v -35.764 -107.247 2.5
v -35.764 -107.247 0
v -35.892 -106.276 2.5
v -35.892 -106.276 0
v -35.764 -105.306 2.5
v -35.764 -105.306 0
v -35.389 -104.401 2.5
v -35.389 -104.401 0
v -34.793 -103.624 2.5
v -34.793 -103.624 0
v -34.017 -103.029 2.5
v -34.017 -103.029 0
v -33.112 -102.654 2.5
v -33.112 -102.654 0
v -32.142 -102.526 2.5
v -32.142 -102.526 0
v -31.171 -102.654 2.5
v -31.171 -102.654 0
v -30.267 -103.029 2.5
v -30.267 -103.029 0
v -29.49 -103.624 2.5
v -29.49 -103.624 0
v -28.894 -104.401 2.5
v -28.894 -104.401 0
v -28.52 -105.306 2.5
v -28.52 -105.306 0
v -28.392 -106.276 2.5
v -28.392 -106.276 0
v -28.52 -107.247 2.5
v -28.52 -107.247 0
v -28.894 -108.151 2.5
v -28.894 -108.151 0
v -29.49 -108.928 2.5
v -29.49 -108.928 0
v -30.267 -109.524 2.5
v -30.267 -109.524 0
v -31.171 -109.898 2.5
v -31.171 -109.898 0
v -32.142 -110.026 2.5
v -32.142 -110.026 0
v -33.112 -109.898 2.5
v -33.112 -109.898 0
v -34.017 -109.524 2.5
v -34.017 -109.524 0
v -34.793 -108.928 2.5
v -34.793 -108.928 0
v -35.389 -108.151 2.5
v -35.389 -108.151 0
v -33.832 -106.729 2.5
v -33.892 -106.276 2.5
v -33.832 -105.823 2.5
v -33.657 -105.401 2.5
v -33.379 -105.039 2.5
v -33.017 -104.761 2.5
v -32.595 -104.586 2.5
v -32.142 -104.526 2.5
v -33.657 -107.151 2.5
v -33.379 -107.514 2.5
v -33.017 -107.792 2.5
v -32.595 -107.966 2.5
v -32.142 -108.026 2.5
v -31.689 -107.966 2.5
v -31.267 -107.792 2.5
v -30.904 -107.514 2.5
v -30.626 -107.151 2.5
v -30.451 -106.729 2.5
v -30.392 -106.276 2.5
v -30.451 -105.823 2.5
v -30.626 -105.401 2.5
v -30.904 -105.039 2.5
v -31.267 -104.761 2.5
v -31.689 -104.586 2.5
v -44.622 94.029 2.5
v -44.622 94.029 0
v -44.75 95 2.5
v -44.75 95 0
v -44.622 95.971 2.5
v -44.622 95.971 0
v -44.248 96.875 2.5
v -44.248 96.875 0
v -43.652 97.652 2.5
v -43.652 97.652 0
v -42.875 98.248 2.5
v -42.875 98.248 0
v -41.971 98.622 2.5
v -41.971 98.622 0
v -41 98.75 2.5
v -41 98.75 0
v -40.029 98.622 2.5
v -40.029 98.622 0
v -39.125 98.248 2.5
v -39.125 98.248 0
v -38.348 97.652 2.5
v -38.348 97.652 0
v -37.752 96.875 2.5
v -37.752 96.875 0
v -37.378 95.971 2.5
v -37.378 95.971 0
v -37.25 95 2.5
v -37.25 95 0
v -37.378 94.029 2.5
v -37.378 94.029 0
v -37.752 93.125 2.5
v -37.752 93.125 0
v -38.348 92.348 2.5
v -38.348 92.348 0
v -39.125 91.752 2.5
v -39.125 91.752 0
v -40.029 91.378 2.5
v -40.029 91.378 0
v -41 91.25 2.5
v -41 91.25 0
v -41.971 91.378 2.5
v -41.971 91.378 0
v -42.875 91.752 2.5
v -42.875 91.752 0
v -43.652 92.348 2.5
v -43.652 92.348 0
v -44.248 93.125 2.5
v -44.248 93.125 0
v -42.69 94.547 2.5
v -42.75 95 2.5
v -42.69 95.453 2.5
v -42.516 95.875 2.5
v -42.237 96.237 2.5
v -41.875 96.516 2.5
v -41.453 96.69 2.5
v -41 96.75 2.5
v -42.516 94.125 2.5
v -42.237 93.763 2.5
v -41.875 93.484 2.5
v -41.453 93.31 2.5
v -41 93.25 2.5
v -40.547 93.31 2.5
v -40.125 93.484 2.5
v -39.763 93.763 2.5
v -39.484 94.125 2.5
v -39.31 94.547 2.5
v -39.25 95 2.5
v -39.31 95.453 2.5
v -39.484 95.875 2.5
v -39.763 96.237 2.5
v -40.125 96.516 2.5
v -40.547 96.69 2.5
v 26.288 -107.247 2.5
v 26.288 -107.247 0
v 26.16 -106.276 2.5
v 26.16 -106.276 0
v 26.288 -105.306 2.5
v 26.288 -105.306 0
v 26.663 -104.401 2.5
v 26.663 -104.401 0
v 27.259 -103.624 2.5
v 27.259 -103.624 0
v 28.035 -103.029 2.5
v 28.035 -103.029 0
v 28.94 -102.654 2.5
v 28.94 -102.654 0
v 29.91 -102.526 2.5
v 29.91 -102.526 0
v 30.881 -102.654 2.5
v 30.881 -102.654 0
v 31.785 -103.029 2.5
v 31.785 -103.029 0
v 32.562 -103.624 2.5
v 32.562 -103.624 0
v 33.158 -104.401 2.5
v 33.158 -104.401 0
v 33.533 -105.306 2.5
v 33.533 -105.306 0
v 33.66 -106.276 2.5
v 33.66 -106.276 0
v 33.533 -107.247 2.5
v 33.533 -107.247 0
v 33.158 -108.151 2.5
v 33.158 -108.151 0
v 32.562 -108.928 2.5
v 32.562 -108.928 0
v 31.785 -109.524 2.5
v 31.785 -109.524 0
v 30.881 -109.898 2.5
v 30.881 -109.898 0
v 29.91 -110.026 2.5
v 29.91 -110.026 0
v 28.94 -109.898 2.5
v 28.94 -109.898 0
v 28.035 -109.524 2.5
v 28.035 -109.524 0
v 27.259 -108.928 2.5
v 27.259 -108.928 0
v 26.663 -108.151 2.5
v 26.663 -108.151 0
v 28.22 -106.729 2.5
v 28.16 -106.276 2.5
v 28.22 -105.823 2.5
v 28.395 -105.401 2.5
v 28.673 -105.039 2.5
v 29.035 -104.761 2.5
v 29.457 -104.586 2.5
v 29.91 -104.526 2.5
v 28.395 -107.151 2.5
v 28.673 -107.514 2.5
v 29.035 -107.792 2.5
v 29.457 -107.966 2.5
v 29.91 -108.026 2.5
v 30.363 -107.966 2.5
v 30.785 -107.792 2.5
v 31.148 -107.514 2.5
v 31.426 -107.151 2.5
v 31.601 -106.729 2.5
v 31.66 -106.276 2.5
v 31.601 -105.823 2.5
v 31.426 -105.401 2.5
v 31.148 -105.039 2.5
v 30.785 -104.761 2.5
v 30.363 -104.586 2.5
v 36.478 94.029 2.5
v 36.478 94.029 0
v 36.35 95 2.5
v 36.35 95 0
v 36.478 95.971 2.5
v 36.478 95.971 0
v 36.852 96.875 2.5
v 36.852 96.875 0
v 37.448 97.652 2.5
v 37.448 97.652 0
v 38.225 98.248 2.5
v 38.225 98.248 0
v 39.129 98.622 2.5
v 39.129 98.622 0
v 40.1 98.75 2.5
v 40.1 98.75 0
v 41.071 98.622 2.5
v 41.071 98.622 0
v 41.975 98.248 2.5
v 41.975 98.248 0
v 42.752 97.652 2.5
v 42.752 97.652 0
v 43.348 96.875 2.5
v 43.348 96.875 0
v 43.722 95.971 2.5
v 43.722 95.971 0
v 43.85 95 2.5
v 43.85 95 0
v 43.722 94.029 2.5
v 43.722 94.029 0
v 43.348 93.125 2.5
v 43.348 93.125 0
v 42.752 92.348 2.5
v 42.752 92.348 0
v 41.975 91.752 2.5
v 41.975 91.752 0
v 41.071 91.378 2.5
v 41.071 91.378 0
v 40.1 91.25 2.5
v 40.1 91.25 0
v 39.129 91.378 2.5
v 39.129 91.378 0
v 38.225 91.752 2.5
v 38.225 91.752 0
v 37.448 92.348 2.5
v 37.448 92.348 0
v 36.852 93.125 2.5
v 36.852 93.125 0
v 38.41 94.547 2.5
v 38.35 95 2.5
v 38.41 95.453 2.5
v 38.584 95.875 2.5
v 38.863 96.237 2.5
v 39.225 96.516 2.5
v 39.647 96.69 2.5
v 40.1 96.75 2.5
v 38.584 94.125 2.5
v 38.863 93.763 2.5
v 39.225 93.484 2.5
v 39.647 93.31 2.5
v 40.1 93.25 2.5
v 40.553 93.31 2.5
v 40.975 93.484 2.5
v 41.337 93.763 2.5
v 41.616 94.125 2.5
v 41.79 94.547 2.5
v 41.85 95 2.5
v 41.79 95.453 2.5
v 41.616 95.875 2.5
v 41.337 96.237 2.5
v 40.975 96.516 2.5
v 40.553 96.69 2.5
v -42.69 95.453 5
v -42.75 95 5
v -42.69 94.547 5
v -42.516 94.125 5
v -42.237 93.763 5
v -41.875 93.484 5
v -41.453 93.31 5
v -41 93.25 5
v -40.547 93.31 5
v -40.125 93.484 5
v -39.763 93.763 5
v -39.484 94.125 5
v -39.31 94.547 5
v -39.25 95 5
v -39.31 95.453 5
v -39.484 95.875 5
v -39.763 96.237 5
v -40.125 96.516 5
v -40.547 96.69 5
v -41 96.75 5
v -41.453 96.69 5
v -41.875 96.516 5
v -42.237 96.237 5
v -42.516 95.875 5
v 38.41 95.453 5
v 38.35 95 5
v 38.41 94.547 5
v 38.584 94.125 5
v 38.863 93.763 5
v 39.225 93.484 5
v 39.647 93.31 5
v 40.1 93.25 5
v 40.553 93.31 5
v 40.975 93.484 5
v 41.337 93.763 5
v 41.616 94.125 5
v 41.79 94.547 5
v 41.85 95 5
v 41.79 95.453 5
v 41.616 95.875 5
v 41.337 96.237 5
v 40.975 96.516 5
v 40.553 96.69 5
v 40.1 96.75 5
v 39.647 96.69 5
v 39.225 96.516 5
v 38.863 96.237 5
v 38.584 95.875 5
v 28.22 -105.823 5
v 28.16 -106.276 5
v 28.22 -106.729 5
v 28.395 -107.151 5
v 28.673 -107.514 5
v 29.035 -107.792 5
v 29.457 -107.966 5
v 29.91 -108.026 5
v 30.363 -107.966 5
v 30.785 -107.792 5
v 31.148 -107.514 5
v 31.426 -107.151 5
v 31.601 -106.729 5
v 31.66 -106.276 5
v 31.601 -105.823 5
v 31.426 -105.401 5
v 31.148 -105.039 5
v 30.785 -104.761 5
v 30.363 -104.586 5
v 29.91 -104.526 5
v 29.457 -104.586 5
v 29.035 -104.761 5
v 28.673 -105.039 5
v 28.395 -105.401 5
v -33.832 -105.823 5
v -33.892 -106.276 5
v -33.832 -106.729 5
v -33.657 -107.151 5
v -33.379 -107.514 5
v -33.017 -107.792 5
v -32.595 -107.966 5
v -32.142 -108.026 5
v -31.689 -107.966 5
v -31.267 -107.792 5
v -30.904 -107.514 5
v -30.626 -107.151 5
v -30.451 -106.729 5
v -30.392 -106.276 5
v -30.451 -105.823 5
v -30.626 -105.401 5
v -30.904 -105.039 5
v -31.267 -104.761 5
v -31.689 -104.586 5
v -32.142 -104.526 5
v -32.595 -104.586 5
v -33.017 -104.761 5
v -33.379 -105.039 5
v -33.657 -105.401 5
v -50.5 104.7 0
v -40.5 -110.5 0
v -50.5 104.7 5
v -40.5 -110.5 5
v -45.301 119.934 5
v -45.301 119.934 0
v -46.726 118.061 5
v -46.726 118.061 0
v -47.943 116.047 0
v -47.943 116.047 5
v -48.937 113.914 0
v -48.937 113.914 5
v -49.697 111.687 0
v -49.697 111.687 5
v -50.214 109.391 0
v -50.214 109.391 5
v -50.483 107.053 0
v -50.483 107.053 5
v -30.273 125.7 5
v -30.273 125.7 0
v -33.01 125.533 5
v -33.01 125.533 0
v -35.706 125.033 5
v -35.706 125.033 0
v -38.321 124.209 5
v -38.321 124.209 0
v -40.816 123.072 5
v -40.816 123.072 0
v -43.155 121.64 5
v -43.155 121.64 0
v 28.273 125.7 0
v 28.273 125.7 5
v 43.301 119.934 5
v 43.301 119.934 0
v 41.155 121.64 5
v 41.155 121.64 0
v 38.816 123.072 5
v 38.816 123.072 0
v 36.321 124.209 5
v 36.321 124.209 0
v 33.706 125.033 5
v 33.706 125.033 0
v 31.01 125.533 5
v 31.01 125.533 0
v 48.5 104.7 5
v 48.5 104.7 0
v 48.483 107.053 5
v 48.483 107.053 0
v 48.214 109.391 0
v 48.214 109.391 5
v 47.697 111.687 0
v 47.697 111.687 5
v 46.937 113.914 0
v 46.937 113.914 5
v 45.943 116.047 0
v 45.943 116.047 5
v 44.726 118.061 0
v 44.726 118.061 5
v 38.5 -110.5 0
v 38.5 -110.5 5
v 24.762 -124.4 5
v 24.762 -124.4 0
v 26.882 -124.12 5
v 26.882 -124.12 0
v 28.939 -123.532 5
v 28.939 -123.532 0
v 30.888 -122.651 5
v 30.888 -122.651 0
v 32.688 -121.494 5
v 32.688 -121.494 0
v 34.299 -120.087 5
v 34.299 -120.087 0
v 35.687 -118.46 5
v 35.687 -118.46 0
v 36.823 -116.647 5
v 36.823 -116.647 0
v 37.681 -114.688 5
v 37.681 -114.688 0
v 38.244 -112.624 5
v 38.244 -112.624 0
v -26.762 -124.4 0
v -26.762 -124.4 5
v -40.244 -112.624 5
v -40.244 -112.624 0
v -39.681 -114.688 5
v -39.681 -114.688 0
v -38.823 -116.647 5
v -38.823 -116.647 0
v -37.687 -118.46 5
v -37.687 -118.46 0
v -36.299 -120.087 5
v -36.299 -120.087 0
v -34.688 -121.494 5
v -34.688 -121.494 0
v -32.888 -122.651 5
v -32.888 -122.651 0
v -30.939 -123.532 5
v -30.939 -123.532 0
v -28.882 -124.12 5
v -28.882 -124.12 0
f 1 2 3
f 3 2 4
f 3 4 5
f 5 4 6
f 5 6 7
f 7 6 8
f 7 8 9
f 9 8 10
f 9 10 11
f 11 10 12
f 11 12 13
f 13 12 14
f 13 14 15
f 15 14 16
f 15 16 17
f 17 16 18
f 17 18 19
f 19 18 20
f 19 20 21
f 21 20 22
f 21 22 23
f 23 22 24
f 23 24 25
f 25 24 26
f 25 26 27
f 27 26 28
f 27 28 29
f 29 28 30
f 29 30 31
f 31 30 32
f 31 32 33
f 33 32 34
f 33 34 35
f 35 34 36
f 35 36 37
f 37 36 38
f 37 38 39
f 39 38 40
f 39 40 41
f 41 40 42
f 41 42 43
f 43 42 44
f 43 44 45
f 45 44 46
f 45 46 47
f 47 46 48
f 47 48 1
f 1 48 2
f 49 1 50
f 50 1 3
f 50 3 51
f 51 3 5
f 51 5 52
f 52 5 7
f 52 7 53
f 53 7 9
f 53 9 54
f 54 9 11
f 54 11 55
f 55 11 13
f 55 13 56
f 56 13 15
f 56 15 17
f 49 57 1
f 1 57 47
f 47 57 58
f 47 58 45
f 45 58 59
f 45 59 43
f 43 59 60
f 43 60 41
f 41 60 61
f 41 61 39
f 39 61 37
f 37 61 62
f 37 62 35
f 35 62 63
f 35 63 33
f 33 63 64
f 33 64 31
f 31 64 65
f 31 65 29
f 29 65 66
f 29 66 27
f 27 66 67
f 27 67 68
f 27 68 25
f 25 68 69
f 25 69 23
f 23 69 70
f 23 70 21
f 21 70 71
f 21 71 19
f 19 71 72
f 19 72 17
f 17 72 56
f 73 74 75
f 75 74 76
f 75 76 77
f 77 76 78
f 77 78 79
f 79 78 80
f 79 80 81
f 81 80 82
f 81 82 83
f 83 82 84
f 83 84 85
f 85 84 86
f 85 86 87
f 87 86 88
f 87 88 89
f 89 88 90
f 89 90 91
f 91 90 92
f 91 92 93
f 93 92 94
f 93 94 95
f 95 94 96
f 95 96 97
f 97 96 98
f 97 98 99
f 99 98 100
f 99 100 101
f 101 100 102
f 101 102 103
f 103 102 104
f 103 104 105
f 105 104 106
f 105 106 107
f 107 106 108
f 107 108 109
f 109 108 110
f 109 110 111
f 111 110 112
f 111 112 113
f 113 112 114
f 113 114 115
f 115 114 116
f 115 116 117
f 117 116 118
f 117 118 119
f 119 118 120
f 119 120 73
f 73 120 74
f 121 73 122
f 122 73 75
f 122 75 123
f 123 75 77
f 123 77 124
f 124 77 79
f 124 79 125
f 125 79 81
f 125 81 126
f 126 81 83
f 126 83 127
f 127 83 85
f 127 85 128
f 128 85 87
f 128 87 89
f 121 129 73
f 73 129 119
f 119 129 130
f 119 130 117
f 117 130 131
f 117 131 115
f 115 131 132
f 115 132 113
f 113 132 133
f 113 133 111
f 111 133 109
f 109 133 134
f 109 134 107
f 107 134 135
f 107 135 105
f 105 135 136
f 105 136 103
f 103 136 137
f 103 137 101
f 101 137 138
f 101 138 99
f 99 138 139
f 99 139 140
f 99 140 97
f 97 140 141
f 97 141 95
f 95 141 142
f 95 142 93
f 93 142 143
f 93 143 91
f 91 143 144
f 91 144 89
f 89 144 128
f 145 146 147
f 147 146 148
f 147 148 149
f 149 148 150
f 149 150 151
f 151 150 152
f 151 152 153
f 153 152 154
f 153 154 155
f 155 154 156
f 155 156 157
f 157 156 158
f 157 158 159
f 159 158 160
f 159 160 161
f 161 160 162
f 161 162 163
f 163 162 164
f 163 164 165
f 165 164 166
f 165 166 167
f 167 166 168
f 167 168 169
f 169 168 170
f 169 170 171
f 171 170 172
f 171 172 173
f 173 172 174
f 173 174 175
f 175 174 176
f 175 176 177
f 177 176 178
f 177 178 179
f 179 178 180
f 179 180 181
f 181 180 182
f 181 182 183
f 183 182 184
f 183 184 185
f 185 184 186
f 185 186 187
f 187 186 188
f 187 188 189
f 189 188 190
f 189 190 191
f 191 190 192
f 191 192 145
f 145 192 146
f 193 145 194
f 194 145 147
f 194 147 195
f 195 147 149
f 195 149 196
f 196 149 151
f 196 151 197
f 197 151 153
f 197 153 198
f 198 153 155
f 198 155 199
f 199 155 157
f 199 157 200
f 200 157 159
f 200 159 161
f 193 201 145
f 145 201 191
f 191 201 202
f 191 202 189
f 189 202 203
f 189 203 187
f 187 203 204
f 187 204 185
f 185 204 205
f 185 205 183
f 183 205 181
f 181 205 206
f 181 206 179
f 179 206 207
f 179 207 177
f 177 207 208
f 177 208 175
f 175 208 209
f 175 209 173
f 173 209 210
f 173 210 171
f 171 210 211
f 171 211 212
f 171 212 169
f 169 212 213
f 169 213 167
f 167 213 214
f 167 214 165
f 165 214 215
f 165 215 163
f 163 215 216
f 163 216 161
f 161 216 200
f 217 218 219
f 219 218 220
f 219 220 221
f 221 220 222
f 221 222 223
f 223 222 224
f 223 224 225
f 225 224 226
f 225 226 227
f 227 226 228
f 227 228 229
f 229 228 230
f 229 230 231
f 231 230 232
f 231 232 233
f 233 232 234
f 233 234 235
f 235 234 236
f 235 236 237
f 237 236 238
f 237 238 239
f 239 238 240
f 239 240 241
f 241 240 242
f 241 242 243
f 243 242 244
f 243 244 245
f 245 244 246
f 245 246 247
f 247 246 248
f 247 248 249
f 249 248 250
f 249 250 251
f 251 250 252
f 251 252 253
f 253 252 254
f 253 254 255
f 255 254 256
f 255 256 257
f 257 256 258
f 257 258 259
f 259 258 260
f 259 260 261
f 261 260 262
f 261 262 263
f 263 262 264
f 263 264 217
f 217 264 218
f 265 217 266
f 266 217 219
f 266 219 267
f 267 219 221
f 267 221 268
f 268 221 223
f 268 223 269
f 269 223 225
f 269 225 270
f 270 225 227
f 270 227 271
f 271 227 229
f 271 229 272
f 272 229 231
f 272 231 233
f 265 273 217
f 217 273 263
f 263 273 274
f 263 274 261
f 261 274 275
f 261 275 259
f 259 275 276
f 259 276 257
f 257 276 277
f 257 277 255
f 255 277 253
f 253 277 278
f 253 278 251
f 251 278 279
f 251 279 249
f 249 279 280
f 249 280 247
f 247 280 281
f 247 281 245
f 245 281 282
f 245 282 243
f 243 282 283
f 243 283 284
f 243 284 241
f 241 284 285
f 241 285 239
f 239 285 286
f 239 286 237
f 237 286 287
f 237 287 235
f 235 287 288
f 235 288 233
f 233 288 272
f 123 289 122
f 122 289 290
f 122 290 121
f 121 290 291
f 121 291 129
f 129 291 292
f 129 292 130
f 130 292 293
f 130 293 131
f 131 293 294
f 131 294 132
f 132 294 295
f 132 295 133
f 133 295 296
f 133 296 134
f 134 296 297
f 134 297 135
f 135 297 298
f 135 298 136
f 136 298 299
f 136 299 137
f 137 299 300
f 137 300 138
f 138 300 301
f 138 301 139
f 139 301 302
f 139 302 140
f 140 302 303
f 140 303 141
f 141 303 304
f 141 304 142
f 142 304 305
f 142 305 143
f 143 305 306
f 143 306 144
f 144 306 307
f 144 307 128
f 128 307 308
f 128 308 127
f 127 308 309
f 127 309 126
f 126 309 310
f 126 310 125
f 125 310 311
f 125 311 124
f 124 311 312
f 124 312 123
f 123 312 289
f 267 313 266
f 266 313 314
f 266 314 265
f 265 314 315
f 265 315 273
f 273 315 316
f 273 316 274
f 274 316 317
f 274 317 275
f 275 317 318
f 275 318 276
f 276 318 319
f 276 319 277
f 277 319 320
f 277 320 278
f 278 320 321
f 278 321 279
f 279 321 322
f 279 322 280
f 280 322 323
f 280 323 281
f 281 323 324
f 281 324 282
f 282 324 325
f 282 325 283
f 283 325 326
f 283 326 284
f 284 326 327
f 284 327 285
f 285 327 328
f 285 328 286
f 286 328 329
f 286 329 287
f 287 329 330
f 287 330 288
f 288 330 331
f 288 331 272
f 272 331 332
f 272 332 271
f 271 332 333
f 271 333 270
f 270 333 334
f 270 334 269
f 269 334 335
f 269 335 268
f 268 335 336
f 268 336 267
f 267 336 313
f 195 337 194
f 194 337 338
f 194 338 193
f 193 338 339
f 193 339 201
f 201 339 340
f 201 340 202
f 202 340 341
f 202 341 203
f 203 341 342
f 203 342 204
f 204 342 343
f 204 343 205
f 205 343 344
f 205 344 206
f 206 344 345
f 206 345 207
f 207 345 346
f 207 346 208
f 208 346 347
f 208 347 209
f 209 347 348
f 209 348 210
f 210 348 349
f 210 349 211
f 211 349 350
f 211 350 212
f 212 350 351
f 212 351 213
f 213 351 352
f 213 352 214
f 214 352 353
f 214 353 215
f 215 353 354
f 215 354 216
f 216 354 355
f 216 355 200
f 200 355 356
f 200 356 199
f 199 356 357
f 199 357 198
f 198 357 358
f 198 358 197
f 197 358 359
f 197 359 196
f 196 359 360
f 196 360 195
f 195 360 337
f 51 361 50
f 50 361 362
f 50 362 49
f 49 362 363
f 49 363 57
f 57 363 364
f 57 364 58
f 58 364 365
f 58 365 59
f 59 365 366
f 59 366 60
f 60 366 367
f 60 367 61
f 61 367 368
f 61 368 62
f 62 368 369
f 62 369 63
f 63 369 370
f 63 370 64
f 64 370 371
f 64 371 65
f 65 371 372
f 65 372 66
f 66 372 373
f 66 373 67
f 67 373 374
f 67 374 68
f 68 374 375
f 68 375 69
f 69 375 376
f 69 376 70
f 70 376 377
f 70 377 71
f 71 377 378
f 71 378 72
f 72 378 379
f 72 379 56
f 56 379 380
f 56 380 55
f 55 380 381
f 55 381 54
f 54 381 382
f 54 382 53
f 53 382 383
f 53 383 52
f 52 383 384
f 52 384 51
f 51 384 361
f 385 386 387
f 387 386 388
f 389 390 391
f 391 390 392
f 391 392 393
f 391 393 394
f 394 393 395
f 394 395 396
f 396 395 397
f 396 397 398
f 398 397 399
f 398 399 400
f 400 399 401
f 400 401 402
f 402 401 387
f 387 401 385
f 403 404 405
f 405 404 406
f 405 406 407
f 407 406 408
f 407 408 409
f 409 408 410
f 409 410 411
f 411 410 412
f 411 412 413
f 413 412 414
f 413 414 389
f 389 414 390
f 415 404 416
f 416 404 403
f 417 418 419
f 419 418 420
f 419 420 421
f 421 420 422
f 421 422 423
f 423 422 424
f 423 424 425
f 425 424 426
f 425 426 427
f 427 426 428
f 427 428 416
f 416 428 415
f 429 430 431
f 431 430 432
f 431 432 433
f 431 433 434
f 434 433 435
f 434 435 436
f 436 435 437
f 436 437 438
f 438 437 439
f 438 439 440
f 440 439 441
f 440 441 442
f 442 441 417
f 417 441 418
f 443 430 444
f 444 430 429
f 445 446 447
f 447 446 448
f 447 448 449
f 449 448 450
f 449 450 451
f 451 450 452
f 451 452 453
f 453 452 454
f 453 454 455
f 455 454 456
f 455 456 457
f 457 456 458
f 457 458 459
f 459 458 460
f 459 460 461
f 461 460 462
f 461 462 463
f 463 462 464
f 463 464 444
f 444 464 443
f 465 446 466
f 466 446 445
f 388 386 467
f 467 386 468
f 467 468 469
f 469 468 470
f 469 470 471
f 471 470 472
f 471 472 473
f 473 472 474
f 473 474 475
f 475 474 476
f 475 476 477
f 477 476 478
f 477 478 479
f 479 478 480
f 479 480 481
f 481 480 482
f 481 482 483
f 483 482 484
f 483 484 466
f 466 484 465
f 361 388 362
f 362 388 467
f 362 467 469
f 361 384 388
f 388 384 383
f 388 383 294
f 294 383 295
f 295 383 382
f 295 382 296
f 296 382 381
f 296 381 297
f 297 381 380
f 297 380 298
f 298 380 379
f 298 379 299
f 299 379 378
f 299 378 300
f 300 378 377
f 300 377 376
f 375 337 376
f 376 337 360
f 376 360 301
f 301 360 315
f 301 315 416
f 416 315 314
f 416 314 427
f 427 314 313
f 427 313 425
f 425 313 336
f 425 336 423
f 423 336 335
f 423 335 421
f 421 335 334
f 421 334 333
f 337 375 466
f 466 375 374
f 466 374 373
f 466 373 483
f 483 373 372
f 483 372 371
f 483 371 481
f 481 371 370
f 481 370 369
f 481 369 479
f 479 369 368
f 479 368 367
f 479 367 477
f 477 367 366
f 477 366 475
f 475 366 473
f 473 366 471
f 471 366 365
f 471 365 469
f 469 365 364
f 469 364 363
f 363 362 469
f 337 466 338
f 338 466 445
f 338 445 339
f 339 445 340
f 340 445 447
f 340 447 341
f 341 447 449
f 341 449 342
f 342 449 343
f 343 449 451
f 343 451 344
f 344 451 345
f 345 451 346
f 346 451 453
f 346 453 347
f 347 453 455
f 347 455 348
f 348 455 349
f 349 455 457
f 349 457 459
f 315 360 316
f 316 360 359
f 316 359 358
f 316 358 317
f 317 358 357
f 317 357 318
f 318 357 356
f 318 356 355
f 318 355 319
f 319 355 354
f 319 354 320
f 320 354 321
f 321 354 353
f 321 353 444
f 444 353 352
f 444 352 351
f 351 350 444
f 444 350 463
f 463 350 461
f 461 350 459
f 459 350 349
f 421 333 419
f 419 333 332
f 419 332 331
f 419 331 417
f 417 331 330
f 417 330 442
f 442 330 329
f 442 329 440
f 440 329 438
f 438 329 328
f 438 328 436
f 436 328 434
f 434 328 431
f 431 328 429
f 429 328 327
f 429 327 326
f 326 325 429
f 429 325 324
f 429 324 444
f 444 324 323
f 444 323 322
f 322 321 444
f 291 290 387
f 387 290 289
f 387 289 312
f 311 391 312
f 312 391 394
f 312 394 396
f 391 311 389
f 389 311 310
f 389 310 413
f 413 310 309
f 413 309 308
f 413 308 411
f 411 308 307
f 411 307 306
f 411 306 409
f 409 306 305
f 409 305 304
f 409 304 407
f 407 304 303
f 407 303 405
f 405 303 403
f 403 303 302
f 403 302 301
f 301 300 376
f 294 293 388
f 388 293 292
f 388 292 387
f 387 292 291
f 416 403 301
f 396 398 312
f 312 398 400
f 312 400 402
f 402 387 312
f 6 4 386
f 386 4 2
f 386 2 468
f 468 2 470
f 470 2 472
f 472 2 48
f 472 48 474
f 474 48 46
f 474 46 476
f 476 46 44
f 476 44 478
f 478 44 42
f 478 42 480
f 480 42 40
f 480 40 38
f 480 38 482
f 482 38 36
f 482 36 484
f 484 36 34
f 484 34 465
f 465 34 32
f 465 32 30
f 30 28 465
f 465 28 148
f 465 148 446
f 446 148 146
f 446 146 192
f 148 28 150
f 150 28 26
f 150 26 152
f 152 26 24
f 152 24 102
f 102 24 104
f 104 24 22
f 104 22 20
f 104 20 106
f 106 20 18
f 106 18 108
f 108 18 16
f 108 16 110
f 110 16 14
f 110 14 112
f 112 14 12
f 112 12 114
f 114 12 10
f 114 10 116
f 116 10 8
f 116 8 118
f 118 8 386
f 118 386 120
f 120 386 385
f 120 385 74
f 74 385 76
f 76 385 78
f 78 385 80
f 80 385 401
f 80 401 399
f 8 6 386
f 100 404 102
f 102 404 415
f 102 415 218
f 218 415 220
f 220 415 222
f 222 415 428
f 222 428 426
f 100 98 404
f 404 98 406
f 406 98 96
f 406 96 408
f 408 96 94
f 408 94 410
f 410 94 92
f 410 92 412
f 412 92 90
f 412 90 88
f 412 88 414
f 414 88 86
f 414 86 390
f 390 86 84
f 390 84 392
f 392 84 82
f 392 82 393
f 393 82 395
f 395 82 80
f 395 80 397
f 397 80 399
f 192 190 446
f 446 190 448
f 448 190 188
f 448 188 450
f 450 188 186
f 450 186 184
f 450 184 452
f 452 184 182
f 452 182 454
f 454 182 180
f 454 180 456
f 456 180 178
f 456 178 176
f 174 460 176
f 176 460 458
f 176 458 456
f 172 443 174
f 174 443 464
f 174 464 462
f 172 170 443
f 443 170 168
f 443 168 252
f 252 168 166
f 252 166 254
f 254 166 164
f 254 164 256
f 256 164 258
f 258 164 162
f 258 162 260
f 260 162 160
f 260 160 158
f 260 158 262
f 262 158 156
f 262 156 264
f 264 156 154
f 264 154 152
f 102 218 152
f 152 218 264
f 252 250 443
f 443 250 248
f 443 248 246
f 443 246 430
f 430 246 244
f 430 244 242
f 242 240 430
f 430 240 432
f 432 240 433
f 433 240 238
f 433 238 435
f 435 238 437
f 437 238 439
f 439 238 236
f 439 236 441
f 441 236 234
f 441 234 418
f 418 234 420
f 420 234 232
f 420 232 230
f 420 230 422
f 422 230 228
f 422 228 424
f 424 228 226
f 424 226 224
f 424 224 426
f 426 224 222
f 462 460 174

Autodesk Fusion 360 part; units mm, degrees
sketch "Sketch2" plane through (0, 0, 0) normal (0, 0, 1) x (1, 0, 0)
  line L0 (-41, 95) -> (40.1, 95) construction
  circle A0 centre (-41, 95) radius 1.75
  circle A1 centre (40.1, 95) radius 1.75
  line L1 (-32.1418, -106.2761) -> (29.9104, -106.2761) construction
  circle A2 centre (-32.1418, -106.2761) radius 1.75
  circle A3 centre (29.9104, -106.2761) radius 1.75
  line L2 (0, 125.7) -> (-30.2729, 125.7)
  line L3 (0, -124.4) -> (-26.7617, -124.4)
  line L4 (-40.5, -110.5) -> (-50.5, 104.7)
  arc A4 (-40.5, -110.5) -> (-26.7617, -124.4) centre (-25.9132, -109.8222) ccw
  arc A5 (-45.3008, 119.9335) -> (-50.5, 104.7) centre (-28.5694, 105.7191) ccw
  arc A6 (-30.2729, 125.7) -> (-45.3008, 119.9335) centre (-30.2729, 103.2348) ccw
  arc A7 (43.3008, 119.9335) -> (28.2729, 125.7) centre (28.2729, 103.2348) ccw
  arc A8 (48.5, 104.7) -> (43.3008, 119.9335) centre (26.5694, 105.7191) ccw
  line L5 (38.5, -110.5) -> (48.5, 104.7)
  arc A9 (24.7617, -124.4) -> (38.5, -110.5) centre (23.9132, -109.8222) ccw
  line L6 (0, 125.7) -> (28.2729, 125.7)
  line L7 (0, -124.4) -> (24.7617, -124.4)
  circle A10 centre (-41, 95) radius 3.75
  circle A11 centre (-41, 95) radius 3.75
  circle A12 centre (40.1, 95) radius 3.75
  circle A13 centre (-32.1418, -106.2761) radius 3.75
  circle A14 centre (29.9104, -106.2761) radius 3.75
  dimension "d1" = 3.5
  dimension "d2" = 62.0522
  dimension "d3" = 7.5
  dimension "d4" = 7.5
extrude "Extrude1" add sketch "Sketch2" along normal blind 5 contours L2 L3 L4 A4 A5 A6 A7 A8 L5 A9 L6 L7 | A10 A11 | A12 | A13 | A14
extrude "Extrude2" cut sketch "Sketch2" along normal blind 2.5 contours A10 A11 | A12 | A13 | A14
